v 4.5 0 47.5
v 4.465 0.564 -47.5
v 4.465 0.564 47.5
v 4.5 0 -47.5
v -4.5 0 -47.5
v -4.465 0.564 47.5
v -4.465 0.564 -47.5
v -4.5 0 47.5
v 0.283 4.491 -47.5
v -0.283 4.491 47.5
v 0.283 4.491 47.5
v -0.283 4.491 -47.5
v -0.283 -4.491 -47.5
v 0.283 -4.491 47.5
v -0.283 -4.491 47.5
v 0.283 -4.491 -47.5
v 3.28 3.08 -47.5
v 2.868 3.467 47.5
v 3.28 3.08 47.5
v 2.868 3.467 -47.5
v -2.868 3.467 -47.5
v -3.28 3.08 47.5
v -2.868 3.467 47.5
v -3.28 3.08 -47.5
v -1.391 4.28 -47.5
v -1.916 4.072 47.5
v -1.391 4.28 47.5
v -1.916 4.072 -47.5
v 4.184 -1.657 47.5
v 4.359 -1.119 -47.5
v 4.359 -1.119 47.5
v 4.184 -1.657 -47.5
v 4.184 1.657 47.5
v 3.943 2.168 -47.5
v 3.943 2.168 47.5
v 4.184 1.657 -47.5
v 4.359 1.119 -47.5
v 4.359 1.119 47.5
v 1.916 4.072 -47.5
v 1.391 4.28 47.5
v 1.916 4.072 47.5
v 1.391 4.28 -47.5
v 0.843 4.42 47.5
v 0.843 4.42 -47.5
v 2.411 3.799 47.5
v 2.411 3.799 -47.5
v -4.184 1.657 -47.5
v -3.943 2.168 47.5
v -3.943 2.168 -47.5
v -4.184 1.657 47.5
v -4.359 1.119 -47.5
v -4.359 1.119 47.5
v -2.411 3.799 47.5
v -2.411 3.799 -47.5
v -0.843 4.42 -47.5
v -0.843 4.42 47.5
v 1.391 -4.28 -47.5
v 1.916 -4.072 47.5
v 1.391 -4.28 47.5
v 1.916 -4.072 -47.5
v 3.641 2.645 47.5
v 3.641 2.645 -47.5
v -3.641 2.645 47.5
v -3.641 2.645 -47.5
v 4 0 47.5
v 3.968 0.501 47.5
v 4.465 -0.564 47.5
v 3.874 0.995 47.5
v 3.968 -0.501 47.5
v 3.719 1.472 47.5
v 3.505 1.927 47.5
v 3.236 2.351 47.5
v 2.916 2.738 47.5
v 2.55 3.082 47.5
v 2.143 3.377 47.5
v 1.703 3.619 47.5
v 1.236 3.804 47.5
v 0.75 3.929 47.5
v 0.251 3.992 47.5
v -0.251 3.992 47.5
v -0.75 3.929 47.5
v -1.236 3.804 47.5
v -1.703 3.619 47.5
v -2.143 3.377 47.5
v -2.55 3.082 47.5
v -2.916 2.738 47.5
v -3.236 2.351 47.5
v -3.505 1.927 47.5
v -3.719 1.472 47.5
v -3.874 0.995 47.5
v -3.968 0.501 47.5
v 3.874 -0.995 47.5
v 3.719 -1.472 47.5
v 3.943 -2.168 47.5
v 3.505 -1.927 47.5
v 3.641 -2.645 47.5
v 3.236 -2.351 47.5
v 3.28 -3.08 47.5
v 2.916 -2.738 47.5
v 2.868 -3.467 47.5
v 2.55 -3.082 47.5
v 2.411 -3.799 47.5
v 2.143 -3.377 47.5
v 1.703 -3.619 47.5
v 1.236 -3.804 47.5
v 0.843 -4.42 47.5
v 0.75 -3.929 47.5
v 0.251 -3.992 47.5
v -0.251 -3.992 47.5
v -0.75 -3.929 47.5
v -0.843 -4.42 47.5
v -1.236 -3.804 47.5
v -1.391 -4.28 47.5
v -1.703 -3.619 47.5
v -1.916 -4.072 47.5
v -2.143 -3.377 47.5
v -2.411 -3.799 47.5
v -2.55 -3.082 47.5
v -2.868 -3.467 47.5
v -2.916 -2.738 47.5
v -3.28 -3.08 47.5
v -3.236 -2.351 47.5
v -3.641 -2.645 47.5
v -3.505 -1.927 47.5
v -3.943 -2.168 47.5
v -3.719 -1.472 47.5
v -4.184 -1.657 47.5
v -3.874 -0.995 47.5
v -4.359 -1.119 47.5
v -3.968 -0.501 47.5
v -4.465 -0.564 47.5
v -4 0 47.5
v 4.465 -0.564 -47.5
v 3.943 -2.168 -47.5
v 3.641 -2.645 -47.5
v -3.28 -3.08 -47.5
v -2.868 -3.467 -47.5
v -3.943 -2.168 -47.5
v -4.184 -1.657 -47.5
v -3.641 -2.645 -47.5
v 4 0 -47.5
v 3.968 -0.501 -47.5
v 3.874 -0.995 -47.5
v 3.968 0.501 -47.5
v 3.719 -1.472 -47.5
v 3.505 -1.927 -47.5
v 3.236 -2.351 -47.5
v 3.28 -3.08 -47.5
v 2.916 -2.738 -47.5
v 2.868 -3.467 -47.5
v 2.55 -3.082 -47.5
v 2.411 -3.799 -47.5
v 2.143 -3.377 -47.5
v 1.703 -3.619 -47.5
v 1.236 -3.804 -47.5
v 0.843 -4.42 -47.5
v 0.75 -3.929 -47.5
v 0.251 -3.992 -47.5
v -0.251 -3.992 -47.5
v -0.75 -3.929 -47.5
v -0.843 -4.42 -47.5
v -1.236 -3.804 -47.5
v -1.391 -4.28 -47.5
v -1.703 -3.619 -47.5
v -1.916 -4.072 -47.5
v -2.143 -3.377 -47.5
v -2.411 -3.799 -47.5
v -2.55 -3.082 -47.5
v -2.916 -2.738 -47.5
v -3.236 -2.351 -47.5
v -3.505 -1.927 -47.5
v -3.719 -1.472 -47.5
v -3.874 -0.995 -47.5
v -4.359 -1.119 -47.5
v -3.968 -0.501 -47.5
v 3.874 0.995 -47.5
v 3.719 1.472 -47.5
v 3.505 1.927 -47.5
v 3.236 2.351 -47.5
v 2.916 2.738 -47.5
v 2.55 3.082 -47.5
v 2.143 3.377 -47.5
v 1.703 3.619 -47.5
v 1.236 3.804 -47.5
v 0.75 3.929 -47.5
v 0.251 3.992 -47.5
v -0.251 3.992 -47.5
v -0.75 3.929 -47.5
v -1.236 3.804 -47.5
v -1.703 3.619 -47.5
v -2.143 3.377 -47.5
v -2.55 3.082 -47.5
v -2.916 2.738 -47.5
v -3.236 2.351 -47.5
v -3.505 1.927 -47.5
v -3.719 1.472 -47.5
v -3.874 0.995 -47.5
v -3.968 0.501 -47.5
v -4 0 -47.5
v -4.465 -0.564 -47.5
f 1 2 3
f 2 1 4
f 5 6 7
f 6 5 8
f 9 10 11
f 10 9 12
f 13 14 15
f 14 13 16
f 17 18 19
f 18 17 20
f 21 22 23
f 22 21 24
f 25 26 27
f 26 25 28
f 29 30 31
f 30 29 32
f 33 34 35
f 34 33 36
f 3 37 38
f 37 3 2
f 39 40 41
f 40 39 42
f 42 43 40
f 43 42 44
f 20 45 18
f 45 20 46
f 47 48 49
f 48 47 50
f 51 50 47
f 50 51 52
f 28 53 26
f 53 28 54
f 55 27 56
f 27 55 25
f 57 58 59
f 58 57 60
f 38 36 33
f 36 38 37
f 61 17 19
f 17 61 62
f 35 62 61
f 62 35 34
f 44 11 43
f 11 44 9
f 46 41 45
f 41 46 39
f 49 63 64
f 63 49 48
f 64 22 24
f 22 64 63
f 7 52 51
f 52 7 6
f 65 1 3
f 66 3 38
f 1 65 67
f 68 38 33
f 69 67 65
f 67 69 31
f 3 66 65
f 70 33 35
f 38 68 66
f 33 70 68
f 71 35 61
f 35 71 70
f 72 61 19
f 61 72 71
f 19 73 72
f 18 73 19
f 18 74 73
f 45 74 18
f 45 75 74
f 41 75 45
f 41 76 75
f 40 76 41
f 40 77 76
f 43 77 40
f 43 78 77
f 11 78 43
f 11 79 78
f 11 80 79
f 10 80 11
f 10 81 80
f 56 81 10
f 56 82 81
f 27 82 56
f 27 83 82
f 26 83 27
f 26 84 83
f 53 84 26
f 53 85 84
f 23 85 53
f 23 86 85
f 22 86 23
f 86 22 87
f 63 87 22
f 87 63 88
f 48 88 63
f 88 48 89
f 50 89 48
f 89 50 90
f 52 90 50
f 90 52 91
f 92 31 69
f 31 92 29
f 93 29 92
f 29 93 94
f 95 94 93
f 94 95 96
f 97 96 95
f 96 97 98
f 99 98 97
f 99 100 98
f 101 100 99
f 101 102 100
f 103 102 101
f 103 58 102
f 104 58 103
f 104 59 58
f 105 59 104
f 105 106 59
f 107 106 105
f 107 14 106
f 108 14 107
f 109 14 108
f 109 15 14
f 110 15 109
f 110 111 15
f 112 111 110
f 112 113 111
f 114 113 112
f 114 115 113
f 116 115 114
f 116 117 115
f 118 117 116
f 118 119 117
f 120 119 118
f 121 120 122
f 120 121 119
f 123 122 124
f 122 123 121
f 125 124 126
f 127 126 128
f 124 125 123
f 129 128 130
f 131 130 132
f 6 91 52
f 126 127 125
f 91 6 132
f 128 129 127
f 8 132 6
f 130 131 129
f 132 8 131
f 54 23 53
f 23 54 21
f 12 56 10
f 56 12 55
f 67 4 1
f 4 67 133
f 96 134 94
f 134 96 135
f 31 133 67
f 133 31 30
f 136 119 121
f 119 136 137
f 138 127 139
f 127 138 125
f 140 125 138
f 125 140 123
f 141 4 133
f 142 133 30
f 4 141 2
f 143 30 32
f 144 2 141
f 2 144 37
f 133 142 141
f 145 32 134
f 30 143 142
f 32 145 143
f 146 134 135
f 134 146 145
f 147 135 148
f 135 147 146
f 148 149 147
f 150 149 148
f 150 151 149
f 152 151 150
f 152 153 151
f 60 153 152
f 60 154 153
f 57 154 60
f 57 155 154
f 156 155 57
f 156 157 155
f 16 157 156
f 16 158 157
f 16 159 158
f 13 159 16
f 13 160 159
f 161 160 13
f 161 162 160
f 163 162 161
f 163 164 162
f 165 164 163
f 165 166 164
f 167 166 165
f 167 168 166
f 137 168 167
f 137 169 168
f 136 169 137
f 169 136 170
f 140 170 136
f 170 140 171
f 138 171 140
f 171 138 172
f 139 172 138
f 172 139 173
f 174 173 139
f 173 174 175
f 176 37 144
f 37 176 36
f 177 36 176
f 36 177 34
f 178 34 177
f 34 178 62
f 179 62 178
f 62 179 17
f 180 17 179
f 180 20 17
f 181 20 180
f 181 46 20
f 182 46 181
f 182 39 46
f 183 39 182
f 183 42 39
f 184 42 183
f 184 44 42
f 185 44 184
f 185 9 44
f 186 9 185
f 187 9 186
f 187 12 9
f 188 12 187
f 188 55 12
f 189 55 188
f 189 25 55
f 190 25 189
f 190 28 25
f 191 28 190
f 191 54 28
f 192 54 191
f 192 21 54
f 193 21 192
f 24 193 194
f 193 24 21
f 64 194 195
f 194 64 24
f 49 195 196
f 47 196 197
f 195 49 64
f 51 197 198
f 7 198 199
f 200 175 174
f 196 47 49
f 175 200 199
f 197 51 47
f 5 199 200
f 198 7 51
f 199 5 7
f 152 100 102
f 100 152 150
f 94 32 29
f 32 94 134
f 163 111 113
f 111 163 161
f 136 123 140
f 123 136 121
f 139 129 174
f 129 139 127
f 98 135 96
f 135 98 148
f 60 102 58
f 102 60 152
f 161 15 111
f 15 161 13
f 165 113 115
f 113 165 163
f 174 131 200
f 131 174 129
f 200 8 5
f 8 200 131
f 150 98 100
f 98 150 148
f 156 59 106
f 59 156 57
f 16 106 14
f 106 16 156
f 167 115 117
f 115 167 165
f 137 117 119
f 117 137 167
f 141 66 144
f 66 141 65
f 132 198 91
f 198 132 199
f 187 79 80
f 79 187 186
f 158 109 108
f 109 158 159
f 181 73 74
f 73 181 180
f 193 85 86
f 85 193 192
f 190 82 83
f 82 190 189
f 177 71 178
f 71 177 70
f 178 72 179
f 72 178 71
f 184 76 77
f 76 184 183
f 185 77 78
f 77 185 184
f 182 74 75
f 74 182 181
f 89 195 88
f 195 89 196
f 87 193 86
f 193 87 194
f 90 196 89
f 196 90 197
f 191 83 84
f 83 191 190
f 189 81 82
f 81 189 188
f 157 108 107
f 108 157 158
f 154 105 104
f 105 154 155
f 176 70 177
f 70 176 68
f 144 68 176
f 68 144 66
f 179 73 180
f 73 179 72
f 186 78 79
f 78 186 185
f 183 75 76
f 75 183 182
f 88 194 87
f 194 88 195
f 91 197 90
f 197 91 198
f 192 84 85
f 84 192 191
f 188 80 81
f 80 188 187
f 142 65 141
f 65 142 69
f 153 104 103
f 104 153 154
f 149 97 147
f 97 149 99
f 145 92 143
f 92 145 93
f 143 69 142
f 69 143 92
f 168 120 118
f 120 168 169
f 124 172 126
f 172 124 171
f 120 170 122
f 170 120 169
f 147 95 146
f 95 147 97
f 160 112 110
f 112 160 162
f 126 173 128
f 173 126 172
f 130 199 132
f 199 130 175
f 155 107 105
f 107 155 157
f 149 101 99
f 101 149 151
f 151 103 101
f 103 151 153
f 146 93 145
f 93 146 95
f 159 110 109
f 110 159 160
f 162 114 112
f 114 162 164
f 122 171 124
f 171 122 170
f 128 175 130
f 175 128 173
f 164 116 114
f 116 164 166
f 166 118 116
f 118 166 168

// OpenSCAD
$fn = 50;


difference() {
	union() {
		translate(v = [0, 0, -47.5000000000]) {
			cylinder(h = 95, r = 4.5000000000);
		}
	}
	union() {
		translate(v = [0, 0, -100.0000000000]) {
			cylinder(h = 200, r = 4);
		}
	}
}
